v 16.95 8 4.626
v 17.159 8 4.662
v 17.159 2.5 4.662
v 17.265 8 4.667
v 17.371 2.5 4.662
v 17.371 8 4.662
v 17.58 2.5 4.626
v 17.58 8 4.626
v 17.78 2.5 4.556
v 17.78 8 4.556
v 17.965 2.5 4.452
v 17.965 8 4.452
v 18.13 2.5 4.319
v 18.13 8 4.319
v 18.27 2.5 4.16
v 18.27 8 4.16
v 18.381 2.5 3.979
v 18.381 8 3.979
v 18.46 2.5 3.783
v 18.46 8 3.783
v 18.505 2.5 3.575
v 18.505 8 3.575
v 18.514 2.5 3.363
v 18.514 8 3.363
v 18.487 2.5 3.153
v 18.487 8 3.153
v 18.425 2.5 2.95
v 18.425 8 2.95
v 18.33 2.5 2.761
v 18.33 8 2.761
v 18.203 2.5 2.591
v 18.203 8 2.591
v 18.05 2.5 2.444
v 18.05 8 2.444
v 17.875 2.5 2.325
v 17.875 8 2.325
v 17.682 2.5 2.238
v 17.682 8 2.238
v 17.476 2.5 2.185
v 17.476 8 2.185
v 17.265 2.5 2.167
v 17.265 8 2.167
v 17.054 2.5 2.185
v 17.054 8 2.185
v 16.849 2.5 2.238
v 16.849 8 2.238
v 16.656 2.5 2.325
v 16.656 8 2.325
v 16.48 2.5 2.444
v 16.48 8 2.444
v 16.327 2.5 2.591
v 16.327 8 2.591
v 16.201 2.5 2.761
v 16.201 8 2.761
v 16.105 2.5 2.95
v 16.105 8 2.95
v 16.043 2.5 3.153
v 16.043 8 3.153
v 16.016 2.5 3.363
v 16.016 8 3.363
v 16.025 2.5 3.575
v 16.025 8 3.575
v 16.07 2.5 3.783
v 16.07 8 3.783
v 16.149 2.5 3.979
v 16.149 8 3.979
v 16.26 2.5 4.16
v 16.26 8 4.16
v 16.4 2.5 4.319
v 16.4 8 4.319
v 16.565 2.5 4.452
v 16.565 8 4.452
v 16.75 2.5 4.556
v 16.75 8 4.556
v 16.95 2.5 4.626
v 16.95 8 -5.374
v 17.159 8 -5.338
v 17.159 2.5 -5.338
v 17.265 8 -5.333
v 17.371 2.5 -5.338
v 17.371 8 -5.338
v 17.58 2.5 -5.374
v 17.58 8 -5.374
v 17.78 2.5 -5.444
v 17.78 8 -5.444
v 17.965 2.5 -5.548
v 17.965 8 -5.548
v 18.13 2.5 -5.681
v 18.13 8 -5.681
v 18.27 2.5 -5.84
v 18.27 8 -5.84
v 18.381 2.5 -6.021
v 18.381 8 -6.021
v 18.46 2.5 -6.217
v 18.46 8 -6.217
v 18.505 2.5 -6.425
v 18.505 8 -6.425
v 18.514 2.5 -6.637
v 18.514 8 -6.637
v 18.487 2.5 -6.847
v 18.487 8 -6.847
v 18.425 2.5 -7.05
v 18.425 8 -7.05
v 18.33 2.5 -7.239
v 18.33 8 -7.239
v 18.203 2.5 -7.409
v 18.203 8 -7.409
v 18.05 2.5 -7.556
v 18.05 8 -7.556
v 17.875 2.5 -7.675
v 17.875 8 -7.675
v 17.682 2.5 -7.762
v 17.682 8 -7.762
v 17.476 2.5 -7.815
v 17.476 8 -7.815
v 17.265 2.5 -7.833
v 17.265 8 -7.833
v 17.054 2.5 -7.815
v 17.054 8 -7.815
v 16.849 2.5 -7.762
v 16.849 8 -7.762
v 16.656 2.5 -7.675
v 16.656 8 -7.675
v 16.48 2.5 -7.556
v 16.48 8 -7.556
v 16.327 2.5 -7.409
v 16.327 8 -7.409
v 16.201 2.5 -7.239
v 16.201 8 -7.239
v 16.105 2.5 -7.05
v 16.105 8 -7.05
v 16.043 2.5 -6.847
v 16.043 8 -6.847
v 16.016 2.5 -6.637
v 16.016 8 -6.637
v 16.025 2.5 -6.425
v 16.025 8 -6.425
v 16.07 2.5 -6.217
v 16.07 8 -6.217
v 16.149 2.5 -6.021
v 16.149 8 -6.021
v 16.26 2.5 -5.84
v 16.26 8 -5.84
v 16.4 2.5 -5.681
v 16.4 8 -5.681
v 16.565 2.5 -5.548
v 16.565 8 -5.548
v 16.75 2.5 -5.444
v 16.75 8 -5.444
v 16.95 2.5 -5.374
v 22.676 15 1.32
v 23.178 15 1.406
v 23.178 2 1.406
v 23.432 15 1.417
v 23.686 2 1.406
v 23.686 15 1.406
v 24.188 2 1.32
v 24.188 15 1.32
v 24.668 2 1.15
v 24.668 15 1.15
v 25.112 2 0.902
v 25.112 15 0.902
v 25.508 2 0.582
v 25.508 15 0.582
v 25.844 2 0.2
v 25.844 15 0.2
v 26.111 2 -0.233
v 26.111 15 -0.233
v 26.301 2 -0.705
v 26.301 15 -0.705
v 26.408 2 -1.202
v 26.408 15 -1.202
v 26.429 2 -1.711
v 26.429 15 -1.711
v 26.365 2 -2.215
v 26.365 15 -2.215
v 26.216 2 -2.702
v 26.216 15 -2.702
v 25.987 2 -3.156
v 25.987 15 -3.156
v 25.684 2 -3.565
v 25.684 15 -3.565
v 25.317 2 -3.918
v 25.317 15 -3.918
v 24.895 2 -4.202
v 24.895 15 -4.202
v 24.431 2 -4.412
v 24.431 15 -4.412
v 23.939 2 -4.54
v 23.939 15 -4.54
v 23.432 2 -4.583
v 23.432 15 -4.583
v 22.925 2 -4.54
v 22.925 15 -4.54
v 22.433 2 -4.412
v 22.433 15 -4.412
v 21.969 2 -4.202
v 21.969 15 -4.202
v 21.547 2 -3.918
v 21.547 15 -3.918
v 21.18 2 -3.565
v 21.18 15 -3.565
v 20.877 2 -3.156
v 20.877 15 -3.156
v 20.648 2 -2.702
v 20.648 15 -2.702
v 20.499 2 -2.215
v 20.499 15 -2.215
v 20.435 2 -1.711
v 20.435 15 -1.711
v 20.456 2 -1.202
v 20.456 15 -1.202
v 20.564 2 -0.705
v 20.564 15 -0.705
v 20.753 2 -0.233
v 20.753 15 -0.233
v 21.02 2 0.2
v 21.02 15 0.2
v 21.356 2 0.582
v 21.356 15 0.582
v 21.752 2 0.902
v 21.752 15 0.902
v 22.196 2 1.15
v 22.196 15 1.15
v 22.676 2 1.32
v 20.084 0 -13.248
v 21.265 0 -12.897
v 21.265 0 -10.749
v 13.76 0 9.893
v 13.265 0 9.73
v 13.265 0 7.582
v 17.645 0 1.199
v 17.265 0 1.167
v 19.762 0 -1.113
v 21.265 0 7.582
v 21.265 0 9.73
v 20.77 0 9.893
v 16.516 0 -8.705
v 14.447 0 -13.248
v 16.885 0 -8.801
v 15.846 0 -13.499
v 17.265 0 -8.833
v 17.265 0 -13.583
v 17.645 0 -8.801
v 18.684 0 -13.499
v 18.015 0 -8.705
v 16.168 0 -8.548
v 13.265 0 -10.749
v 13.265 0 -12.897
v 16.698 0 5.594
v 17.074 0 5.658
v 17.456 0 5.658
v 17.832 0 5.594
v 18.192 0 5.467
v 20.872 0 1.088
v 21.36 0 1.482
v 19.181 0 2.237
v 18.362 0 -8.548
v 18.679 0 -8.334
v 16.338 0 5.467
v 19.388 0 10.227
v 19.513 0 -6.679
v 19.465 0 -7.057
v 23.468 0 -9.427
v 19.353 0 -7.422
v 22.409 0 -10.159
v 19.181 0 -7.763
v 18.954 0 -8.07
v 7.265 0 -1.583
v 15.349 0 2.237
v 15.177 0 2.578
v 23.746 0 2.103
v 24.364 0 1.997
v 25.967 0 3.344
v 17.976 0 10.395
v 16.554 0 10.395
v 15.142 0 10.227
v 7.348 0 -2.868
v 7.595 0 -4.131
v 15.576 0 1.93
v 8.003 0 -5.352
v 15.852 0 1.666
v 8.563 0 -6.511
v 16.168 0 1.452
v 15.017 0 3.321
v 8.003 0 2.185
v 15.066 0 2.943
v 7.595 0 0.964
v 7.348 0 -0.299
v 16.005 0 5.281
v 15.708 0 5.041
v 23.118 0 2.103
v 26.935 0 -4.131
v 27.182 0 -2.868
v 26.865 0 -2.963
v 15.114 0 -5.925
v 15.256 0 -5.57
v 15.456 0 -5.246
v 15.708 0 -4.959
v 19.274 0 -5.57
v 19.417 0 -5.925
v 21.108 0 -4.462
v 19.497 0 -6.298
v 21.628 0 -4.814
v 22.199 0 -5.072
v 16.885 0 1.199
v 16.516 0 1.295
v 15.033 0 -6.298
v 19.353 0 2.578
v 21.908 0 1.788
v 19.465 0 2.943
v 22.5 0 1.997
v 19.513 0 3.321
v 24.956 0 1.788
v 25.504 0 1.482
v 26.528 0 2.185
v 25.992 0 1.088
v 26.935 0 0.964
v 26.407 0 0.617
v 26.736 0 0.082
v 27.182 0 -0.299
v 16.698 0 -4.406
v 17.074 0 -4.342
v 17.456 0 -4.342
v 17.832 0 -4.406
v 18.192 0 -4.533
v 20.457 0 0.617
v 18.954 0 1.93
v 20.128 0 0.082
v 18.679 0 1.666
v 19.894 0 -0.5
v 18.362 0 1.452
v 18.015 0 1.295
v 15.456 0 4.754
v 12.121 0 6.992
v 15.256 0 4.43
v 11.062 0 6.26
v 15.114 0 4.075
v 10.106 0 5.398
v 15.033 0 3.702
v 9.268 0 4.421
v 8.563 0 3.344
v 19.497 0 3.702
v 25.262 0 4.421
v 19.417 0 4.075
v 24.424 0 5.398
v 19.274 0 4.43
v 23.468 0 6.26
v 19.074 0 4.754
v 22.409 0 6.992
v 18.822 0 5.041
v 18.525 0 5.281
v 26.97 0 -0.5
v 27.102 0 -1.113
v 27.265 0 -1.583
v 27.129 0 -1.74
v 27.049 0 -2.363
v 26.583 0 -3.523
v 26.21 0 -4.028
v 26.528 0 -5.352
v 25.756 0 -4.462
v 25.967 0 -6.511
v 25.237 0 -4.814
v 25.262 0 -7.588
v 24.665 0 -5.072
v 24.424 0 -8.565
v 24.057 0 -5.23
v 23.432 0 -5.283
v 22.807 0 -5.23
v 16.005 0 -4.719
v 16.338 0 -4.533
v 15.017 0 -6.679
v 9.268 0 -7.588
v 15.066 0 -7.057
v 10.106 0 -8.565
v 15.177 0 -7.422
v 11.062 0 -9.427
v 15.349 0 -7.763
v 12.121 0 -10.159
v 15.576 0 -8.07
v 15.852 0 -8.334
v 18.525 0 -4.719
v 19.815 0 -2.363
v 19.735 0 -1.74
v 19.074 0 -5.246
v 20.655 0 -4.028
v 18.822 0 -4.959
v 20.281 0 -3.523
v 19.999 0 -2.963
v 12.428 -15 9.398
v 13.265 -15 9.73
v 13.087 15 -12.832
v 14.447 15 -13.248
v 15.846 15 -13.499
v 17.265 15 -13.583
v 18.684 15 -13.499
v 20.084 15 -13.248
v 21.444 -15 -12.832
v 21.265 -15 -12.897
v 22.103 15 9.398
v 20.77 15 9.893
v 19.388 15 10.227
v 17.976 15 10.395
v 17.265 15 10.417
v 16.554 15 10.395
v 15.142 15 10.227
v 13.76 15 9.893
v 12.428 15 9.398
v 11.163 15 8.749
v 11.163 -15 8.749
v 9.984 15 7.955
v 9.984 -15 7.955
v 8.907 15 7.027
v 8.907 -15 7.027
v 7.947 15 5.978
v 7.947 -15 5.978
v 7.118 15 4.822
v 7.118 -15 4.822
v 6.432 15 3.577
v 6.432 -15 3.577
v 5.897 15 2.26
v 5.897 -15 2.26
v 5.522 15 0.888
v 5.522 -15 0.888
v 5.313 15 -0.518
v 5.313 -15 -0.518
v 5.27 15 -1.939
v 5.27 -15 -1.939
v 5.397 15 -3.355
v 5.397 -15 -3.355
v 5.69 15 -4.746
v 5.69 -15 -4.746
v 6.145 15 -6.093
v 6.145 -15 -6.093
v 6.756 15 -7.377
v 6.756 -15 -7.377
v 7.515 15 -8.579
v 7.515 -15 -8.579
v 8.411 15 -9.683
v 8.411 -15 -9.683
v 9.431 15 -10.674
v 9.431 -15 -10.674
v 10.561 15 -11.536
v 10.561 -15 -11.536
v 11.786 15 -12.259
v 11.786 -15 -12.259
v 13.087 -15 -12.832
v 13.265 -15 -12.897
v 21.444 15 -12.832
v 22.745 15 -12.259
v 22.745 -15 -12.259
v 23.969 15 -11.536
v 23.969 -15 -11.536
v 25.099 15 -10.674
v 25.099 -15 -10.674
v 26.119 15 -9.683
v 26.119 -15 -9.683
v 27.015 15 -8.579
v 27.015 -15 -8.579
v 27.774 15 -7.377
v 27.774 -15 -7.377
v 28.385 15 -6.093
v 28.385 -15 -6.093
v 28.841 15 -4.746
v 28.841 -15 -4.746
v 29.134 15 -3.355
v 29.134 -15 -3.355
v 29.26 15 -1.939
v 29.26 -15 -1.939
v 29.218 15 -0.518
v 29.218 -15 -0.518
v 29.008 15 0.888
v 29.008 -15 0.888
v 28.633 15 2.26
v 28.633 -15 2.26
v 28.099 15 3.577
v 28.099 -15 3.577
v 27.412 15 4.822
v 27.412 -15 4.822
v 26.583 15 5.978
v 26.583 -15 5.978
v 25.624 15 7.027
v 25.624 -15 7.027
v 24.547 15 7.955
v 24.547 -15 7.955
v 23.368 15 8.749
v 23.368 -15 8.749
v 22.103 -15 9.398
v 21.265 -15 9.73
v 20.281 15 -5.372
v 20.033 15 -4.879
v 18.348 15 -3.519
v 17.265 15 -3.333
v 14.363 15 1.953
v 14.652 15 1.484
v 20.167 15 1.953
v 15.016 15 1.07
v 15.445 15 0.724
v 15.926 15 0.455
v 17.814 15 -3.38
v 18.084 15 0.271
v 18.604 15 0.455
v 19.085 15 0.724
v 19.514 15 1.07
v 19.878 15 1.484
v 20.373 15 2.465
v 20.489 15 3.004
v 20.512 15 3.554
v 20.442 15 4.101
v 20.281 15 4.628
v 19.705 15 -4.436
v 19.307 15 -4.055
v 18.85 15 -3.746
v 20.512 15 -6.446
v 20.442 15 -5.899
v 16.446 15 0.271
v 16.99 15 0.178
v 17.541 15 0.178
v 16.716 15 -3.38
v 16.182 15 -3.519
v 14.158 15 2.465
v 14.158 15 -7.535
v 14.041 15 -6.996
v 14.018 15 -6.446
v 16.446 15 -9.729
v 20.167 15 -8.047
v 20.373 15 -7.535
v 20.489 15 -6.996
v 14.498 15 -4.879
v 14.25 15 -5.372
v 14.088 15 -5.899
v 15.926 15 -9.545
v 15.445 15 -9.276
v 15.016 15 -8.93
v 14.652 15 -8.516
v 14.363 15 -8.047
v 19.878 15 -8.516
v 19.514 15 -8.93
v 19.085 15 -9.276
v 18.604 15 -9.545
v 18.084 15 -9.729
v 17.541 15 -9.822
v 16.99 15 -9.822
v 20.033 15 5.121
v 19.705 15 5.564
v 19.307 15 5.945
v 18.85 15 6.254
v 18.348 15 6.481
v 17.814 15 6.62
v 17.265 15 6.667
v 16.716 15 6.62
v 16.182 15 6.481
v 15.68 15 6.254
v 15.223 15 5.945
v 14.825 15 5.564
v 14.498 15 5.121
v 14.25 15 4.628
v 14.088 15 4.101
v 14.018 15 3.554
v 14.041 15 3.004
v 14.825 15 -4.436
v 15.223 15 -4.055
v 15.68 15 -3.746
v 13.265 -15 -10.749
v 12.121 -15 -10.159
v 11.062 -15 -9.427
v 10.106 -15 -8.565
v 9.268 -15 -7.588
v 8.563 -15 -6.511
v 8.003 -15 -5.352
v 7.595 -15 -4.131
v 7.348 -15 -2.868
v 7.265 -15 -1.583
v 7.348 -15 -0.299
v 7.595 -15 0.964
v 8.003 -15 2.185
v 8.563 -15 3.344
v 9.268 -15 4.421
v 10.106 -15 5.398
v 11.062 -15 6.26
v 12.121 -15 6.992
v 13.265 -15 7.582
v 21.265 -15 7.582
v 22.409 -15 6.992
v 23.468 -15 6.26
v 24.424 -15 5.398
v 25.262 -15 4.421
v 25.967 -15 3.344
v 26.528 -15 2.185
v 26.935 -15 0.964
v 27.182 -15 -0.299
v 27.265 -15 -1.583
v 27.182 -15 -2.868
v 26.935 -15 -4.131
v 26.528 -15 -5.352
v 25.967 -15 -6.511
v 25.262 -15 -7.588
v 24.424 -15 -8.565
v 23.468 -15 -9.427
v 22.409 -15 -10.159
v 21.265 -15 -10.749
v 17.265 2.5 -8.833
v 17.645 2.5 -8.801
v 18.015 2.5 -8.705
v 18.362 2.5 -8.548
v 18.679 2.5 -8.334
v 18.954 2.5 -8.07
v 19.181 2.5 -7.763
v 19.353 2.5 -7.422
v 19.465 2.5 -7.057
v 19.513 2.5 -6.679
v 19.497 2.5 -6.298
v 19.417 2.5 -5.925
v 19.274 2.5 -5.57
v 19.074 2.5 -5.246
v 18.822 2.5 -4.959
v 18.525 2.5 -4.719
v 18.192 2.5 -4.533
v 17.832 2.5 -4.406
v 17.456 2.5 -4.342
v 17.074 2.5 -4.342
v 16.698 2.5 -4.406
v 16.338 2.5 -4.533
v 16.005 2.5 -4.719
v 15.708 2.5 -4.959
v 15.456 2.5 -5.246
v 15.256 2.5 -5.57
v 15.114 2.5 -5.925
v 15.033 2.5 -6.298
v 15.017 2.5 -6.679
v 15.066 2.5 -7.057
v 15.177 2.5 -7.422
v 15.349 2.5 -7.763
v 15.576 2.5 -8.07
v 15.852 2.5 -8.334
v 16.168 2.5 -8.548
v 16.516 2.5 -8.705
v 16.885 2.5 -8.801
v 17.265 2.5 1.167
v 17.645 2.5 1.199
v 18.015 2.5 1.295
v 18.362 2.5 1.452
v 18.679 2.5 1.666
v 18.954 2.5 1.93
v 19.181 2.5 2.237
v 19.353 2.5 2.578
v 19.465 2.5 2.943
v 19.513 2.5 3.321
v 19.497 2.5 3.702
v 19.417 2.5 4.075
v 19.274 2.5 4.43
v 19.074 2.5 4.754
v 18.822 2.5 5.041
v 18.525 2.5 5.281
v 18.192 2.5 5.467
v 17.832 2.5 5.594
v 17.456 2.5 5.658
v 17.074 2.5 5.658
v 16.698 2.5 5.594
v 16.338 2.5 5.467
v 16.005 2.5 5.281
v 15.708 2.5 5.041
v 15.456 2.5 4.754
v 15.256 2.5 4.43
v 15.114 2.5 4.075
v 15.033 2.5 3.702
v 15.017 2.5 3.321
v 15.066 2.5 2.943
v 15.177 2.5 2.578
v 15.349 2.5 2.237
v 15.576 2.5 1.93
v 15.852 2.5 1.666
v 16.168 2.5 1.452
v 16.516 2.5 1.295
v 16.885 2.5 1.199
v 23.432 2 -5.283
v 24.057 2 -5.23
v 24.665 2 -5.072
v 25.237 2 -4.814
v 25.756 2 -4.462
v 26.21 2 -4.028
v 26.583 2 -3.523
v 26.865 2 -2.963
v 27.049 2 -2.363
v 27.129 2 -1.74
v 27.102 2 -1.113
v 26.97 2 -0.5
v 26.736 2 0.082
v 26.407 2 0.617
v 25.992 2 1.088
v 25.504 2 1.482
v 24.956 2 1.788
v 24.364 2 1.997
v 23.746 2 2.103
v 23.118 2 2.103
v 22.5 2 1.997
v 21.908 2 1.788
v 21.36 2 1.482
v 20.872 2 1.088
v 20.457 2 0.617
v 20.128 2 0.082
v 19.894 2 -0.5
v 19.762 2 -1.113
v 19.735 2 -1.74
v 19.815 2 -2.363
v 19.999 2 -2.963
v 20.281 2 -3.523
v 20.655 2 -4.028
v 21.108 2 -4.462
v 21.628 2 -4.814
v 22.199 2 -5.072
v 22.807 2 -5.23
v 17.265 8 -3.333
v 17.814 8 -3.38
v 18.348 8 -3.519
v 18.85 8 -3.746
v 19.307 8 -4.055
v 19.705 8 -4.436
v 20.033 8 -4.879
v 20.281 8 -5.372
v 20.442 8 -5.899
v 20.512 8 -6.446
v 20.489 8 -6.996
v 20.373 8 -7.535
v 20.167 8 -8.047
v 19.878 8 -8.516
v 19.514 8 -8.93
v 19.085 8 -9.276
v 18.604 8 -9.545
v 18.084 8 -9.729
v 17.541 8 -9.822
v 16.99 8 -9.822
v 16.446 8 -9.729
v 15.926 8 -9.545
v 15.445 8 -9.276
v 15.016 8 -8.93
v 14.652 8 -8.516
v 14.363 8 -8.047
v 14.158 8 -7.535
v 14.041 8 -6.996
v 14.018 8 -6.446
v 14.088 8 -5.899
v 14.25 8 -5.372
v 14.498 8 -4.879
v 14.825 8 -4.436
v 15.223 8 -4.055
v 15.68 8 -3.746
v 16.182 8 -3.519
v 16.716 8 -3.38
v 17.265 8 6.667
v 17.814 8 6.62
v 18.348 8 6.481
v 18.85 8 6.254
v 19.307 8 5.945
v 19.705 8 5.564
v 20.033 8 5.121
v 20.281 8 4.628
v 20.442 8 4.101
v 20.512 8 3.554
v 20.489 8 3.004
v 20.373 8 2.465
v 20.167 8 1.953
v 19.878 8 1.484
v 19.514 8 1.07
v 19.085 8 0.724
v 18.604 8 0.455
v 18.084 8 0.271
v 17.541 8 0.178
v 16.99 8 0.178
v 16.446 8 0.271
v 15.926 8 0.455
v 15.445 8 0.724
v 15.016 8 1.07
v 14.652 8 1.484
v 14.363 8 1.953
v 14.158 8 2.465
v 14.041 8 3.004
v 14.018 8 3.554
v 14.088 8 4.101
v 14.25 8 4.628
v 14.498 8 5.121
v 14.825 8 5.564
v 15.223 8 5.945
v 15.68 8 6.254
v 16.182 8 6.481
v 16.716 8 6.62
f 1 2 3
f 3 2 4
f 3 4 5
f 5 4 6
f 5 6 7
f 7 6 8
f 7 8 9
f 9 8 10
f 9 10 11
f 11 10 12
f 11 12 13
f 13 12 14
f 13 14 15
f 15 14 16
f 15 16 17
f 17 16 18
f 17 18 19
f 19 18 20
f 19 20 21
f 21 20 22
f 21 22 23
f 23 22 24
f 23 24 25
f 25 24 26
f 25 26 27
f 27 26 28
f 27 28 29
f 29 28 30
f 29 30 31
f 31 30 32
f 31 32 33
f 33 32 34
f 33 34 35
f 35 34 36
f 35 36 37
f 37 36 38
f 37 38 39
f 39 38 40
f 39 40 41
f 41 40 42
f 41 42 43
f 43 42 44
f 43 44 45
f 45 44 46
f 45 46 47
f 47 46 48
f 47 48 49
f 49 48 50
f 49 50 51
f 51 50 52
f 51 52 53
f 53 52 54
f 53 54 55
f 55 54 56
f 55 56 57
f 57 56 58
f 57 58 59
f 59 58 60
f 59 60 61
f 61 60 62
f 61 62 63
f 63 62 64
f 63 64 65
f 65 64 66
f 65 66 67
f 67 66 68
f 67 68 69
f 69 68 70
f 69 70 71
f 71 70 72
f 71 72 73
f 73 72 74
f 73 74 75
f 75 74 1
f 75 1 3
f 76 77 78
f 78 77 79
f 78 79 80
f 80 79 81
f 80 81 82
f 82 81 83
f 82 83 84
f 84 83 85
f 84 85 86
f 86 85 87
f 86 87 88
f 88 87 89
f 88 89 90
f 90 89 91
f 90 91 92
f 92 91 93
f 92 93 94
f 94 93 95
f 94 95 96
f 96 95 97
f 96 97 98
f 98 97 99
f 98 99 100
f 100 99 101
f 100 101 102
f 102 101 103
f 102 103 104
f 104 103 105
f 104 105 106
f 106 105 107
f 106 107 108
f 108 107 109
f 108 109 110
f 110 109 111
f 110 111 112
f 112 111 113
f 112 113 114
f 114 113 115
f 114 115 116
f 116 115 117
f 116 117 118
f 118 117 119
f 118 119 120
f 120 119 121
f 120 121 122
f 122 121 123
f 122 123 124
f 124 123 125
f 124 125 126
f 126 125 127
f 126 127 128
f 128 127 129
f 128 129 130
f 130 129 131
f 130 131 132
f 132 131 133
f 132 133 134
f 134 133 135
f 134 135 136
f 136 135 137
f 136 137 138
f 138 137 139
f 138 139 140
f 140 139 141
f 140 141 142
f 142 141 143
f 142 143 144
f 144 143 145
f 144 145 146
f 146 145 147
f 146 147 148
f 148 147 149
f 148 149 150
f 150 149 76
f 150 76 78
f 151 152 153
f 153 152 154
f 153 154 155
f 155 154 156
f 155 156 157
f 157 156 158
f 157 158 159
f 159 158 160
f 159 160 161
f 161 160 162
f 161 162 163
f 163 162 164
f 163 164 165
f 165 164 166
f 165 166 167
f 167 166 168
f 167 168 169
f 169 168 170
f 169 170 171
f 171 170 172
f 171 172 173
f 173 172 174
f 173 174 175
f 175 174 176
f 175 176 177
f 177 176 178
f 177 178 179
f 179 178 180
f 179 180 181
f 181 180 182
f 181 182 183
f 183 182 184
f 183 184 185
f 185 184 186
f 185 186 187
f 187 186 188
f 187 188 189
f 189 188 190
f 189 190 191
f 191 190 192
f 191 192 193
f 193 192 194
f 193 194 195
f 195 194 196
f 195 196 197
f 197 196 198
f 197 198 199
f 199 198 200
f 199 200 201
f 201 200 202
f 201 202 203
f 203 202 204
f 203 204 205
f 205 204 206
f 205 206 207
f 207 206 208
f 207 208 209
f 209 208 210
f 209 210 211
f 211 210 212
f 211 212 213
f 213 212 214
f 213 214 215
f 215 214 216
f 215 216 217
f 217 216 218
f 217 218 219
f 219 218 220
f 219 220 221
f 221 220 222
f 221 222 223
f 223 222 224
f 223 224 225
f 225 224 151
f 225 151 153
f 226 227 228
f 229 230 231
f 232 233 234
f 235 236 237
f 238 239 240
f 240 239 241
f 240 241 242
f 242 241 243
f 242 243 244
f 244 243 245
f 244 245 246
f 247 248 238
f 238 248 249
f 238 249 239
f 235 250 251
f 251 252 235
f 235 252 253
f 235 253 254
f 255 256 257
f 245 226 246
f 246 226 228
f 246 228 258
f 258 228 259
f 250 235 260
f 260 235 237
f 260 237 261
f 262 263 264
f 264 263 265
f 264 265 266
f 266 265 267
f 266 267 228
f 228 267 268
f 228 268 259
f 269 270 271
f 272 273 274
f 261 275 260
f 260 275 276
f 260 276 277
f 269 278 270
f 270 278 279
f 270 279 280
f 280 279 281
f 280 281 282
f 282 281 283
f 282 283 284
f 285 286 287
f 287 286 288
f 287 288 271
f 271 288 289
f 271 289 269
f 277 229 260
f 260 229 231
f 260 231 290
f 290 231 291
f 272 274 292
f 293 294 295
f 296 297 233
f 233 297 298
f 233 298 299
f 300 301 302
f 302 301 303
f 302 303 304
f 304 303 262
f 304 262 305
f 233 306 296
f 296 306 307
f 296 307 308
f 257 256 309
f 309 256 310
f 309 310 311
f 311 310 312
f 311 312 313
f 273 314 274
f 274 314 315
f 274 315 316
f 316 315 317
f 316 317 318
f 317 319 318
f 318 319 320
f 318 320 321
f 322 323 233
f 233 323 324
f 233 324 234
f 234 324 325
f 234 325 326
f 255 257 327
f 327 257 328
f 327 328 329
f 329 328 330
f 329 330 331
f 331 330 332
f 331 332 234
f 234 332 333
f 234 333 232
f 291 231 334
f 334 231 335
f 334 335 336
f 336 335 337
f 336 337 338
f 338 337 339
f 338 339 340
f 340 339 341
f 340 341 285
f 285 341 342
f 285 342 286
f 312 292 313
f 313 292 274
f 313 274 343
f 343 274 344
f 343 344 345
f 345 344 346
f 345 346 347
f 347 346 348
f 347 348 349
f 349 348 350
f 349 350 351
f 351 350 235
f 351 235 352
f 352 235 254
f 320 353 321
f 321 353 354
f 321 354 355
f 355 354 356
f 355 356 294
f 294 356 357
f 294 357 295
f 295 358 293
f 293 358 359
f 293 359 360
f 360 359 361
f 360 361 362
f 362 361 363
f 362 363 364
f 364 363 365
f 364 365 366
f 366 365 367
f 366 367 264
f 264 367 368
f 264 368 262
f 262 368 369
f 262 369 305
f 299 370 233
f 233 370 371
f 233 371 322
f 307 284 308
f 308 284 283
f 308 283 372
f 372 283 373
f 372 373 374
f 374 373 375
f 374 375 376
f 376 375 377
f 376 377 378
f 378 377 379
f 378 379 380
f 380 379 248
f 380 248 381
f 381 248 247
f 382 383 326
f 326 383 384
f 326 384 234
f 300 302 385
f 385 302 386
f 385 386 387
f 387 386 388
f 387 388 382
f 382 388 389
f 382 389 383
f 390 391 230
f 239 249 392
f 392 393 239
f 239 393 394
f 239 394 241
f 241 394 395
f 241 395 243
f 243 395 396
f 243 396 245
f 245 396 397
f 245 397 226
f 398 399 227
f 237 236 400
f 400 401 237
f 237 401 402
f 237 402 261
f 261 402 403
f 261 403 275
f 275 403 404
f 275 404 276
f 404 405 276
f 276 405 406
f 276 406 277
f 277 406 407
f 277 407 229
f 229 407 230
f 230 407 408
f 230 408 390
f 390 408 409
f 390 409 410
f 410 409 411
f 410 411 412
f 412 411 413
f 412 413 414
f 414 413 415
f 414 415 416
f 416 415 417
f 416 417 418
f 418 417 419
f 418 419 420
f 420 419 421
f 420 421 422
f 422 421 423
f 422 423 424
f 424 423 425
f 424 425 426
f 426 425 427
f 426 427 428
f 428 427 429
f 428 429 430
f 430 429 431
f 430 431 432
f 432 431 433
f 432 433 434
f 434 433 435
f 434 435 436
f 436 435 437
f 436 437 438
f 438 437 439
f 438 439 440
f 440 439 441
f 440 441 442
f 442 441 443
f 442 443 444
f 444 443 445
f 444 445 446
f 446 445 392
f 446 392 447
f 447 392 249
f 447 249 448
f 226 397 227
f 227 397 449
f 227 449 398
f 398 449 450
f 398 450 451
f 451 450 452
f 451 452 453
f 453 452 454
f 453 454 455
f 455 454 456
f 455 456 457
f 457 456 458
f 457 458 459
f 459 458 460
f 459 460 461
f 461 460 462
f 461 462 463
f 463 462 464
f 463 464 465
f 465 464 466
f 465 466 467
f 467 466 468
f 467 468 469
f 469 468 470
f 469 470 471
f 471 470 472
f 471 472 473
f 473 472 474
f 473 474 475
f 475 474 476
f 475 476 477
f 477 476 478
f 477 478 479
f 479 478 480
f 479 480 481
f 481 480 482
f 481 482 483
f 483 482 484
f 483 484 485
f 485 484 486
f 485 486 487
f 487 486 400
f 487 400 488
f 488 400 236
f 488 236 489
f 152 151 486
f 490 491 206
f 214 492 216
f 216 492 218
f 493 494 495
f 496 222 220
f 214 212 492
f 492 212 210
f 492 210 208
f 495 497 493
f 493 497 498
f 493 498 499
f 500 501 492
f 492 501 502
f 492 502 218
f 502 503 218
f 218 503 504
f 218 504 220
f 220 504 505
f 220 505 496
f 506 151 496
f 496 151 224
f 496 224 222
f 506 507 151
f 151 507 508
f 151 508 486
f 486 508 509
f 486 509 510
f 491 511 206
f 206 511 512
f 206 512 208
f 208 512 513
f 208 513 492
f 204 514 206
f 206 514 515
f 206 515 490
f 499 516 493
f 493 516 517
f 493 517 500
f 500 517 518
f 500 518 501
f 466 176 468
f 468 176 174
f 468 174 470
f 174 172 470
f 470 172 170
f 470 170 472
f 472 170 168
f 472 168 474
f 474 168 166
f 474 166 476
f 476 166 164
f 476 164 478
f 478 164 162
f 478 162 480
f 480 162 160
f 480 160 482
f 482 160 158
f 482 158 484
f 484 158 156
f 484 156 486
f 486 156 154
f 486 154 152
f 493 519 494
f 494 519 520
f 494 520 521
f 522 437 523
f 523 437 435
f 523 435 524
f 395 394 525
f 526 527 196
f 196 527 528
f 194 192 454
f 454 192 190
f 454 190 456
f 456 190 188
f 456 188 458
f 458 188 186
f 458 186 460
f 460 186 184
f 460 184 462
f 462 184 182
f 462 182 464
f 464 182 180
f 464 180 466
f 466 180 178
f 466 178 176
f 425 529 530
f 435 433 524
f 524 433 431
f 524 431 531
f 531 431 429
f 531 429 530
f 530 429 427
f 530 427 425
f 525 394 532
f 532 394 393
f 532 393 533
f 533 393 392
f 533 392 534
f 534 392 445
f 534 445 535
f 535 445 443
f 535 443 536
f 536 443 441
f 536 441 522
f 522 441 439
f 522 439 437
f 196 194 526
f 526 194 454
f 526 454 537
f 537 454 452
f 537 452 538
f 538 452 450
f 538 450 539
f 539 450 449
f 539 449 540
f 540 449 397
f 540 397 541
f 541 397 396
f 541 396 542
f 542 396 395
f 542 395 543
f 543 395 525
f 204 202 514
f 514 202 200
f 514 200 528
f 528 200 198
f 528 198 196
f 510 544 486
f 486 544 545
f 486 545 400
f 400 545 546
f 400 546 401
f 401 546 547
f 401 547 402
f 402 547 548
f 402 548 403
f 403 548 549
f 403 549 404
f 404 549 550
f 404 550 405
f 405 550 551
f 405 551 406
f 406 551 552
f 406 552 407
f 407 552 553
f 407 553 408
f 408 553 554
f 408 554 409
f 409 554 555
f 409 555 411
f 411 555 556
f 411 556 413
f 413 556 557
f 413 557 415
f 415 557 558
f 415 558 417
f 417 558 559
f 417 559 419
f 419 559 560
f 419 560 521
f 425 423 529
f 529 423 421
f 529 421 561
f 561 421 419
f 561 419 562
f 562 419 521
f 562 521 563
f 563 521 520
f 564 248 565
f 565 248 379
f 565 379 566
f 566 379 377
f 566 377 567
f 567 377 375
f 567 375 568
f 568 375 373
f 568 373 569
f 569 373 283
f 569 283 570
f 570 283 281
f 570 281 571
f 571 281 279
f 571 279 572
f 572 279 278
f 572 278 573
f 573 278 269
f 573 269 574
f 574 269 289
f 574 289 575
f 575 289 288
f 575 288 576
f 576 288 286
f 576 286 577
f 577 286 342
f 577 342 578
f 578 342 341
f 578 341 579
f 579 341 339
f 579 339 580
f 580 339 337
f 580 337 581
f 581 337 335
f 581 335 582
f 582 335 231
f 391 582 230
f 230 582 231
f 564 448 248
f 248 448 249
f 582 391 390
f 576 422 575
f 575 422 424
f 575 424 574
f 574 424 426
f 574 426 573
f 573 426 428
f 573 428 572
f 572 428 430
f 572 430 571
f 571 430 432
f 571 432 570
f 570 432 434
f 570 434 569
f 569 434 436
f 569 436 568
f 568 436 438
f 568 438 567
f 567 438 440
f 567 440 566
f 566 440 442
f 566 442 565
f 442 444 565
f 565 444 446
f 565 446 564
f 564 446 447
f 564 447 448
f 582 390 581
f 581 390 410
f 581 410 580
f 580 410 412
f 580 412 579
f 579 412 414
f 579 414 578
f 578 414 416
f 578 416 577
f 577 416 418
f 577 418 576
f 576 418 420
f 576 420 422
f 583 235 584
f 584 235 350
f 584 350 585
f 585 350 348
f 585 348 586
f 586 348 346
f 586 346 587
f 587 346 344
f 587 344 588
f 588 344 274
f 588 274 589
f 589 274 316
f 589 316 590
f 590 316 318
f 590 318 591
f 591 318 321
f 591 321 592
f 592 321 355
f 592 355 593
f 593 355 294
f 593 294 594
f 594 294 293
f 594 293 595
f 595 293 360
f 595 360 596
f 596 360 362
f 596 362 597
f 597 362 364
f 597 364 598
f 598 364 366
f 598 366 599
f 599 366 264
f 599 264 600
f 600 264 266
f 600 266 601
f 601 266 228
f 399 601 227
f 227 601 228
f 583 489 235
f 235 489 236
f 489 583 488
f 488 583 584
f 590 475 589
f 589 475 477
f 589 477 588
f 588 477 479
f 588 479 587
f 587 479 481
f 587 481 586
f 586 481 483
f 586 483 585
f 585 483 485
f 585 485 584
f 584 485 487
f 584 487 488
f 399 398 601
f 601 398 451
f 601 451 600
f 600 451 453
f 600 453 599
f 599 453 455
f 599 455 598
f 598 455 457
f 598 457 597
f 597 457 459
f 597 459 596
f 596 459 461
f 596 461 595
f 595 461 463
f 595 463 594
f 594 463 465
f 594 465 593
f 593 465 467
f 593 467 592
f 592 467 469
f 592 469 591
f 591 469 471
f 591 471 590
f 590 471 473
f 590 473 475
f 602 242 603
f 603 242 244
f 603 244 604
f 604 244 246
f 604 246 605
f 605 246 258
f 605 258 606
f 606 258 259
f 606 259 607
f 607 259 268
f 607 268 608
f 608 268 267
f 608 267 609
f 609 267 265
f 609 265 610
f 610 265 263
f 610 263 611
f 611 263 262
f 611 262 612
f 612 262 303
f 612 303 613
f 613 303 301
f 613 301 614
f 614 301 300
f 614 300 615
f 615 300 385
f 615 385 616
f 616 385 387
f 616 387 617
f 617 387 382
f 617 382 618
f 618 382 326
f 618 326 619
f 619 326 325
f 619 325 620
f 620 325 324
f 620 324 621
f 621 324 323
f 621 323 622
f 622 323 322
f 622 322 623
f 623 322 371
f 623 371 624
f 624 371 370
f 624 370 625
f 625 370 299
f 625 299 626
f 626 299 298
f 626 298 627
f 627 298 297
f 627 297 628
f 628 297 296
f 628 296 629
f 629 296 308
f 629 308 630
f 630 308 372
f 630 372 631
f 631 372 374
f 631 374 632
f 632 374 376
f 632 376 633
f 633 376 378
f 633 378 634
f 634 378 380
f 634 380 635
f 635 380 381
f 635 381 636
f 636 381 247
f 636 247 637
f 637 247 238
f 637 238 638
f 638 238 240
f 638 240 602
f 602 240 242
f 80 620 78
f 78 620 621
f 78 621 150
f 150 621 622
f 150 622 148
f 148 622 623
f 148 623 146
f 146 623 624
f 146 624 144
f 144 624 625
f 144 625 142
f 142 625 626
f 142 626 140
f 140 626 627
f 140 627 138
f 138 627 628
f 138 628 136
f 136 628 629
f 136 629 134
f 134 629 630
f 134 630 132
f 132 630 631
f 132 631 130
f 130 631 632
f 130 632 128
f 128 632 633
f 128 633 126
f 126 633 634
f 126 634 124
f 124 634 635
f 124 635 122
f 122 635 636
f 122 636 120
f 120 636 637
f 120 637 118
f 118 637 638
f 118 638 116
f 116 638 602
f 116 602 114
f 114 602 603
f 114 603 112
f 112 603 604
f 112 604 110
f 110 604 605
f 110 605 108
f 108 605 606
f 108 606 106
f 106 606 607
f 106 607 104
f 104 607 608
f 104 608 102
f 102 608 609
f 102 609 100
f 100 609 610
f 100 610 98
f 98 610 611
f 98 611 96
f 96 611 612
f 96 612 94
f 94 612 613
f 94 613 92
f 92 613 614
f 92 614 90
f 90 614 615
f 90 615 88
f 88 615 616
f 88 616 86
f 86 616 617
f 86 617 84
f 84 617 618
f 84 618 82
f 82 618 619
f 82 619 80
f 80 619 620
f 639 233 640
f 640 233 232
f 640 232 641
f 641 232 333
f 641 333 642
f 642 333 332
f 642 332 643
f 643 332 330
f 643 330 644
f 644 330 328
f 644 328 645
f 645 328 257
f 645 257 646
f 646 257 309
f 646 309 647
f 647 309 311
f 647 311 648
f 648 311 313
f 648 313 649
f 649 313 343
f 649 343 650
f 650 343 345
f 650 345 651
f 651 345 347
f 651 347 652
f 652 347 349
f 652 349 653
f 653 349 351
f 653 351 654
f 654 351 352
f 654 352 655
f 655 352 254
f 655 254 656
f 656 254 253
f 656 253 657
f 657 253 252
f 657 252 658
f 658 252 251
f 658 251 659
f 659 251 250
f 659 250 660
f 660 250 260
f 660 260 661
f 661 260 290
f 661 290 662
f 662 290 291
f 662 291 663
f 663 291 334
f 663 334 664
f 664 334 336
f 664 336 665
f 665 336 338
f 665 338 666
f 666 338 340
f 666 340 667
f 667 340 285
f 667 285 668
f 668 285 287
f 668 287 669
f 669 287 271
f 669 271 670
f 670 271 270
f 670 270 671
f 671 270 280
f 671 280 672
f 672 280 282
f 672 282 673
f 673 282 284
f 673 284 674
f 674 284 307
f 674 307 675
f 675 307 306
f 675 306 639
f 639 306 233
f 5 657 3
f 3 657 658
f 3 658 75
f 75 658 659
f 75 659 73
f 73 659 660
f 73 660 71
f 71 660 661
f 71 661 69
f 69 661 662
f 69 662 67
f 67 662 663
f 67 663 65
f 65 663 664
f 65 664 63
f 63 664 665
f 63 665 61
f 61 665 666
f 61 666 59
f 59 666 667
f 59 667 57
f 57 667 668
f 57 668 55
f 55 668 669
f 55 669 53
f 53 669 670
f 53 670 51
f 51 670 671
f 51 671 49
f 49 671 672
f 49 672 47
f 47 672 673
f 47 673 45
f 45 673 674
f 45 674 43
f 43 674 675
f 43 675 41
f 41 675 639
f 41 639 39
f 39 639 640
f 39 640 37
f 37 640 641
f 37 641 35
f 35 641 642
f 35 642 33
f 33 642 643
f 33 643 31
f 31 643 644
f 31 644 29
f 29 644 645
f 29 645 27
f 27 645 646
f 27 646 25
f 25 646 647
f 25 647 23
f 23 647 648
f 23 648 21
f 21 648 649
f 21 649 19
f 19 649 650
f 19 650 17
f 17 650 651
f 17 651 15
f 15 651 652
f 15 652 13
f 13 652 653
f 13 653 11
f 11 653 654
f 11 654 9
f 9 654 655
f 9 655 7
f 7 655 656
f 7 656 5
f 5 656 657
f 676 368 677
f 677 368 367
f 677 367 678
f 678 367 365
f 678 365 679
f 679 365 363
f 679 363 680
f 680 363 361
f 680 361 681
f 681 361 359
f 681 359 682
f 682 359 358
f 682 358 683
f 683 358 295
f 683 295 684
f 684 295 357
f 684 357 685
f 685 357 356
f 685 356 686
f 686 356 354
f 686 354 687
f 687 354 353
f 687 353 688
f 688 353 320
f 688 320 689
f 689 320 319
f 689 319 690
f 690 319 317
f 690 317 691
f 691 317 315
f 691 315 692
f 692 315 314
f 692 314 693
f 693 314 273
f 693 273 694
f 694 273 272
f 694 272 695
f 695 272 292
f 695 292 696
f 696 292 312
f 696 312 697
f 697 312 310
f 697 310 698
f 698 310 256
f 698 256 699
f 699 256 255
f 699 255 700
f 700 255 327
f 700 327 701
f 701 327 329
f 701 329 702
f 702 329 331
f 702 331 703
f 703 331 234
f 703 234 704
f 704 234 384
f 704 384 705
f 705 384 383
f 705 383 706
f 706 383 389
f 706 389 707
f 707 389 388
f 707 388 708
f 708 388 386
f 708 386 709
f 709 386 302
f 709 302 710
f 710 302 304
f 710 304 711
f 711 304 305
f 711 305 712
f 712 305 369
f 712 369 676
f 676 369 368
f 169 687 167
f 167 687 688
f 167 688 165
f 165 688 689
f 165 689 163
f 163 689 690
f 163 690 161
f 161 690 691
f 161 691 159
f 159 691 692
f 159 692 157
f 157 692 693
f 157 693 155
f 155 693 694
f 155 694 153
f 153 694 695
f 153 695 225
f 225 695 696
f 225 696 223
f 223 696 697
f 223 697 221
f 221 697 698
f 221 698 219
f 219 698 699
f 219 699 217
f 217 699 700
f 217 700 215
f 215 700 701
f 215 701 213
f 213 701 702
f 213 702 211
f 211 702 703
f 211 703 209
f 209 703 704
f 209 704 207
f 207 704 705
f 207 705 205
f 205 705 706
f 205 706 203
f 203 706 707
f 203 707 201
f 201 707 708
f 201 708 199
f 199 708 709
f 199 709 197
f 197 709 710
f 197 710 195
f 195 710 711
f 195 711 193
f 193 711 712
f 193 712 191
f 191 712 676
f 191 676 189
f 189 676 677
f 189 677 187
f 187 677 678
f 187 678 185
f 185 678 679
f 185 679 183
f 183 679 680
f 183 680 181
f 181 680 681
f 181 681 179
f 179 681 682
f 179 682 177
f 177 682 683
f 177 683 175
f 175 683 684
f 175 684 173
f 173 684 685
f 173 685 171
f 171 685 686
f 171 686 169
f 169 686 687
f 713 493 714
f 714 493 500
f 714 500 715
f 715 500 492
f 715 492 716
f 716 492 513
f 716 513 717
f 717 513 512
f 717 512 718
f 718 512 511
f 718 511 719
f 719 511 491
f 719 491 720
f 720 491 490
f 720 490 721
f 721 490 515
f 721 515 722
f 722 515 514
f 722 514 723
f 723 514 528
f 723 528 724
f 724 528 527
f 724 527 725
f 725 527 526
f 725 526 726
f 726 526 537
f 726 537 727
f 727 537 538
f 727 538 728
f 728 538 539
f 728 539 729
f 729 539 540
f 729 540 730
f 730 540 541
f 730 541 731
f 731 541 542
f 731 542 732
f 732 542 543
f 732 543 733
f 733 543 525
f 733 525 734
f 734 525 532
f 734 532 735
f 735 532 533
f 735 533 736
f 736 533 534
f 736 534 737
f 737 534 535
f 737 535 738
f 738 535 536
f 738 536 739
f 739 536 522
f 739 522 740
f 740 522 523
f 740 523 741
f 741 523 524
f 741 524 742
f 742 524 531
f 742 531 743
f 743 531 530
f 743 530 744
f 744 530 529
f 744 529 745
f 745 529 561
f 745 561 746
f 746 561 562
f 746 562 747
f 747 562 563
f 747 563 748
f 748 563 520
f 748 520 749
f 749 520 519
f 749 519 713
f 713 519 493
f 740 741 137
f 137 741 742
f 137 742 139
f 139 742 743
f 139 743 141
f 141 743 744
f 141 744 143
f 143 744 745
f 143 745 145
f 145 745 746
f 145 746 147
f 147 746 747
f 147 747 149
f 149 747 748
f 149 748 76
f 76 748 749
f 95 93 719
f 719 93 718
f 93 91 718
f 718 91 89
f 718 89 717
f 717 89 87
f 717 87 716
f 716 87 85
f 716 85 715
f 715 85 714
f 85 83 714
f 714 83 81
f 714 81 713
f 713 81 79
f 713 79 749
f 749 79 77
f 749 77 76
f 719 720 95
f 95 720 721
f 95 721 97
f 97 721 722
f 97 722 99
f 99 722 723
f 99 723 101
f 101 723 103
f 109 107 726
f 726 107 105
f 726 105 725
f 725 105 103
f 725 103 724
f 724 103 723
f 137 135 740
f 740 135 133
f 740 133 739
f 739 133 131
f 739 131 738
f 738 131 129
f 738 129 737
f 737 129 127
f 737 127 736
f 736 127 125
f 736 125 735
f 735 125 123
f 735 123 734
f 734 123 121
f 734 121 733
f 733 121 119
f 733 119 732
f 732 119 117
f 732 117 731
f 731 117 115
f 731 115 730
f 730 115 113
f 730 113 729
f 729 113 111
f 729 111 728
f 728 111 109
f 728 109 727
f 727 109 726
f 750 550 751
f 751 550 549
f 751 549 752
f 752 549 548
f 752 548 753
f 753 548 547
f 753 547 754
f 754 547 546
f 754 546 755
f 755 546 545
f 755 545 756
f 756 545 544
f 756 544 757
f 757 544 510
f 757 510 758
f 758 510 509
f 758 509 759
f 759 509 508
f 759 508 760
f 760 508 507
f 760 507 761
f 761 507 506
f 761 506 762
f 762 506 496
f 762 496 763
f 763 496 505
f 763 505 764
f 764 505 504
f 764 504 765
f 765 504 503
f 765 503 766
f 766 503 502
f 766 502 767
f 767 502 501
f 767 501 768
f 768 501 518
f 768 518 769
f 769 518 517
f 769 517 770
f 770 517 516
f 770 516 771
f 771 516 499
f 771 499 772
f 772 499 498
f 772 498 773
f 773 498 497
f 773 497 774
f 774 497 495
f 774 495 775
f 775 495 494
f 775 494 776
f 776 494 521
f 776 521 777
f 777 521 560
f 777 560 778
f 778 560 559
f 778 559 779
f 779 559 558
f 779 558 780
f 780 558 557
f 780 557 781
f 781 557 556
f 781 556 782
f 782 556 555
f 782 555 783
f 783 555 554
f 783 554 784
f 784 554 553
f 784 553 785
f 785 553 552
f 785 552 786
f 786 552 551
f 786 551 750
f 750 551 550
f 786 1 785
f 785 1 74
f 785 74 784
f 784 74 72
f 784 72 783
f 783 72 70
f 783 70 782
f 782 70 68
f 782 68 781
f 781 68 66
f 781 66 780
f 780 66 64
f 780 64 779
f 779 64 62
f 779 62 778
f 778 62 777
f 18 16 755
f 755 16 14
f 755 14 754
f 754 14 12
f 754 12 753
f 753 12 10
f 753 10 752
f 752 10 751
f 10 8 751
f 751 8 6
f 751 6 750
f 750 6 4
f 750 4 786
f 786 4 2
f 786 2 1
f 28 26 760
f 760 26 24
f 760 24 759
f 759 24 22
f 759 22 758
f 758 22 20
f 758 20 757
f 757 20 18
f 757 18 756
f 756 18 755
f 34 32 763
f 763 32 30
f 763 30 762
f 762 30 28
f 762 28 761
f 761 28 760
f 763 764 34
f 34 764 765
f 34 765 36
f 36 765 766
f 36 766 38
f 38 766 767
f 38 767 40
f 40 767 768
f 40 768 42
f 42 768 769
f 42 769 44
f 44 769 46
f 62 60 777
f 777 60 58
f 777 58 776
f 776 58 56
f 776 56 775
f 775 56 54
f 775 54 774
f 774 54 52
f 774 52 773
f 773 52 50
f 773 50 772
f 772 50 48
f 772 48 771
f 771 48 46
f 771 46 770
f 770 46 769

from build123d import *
from build123d.topology import SkipClean

# Parameters (mm, degrees)
SKETCH1_R           = 1.25
BOSS_EXTRUDE1_DEPTH = 15
BOSS_EXTRUDE2_START = 15
BOSS_EXTRUDE2_DEPTH = 15
SKETCH4_R           = 2.25
CUT_EXTRUDE2_DEPTH  = 2.5
SKETCH5_R           = 2.25
CUT_EXTRUDE3_DEPTH  = 2.5
SKETCH6_R           = 3.7
CUT_EXTRUDE4_DEPTH  = 2
SKETCH12_R          = 3.25
CUT_EXTRUDE5_DEPTH  = 7
SKETCH13_R          = 3.25
CUT_EXTRUDE6_DEPTH  = 7


with BuildPart() as part:
    # Sketch1 → Boss-Extrude1 (new body)
    # profile 1 of 3: a face of its own
    with BuildSketch(Plane(origin=(0, 0, 0), x_dir=(1, 0, 0), z_dir=(0, 1, 0))):
        with BuildLine():
            Line((13.265157172, 12.897160092), (13.265157172, 10.748602983))
            ThreePointArc((13.265157172, 10.748602983), (7.265157172, 1.583451593), (13.265157172, -7.581699797))
            Line((13.265157172, -7.581699797), (13.265157172, -9.730256906))
            ThreePointArc((13.265157172, -9.730256906), (17.265157172, -10.416548407), (21.265157172, -9.730256906))
            Line((21.265157172, -9.730256906), (21.265157172, -7.581699797))
            ThreePointArc((21.265157172, -7.581699797), (27.265157172, 1.583451593), (21.265157172, 10.748602983))
            Line((21.265157172, 10.748602983), (21.265157172, 12.897160092))
            ThreePointArc((21.265157172, 12.897160092), (17.265157172, 13.583451593), (13.265157172, 12.897160092))
        make_face()
        with Locations(Location((17.265157172, -3.416548407, 0), (0, 0, 270))):
            Circle(SKETCH1_R, mode=Mode.SUBTRACT)
        with Locations(Location((17.265157172, 6.583451593, 0), (0, 0, 270))):
            Circle(SKETCH1_R, mode=Mode.SUBTRACT)
        with BuildLine():
            ThreePointArc((26.432063002, 1.583451593), (24.549936544, -1.20049502), (21.265157172, -0.491281913))
            ThreePointArc((21.265157172, -0.491281913), (20.432063002, 1.583451593), (21.265157172, 3.6581851))
            ThreePointArc((21.265157172, 3.6581851), (24.549936544, 4.367398207), (26.432063002, 1.583451593))
        make_face(mode=Mode.SUBTRACT)
    # profile 2 of 3: a face of its own
    with BuildSketch(Plane(origin=(0, 0, 0), x_dir=(1, 0, 0), z_dir=(0, 1, 0))):
        with BuildLine():
            ThreePointArc((13.265157172, -7.581699797), (7.265157172, 1.583451593), (13.265157172, 10.748602983))
            Line((13.265157172, 10.748602983), (13.265157172, 12.897160092))
            ThreePointArc((13.265157172, 12.897160092), (5.265157172, 1.583451593), (13.265157172, -9.730256906))
            Line((13.265157172, -9.730256906), (13.265157172, -7.581699797))
        make_face()
    # profile 3 of 3: a face of its own
    with BuildSketch(Plane(origin=(0, 0, 0), x_dir=(1, 0, 0), z_dir=(0, 1, 0))):
        with BuildLine():
            ThreePointArc((29.265157172, 1.583451593), (27.063116143, 8.511654824), (21.265157172, 12.897160092))
            Line((21.265157172, 12.897160092), (21.265157172, 10.748602983))
            ThreePointArc((21.265157172, 10.748602983), (27.265157172, 1.583451593), (21.265157172, -7.581699797))
            Line((21.265157172, -7.581699797), (21.265157172, -9.730256906))
            ThreePointArc((21.265157172, -9.730256906), (27.063116143, -5.344751637), (29.265157172, 1.583451593))
        make_face()
    extrude(amount=BOSS_EXTRUDE1_DEPTH)

    # Sketch3 → Boss-Extrude2 (add)
    with SkipClean():  # the faces are left unmerged after this step: merging them gives an invalid solid
        with BuildSketch(Plane.XZ.offset(BOSS_EXTRUDE2_START)):
            with BuildLine():
                Line((13.265157172, -12.897160092), (13.265157172, -10.748602983))
                ThreePointArc((13.265157172, -10.748602983), (7.265157172, -1.583451593), (13.265157172, 7.581699797))
                Line((13.265157172, 7.581699797), (13.265157172, 9.730256906))
                ThreePointArc((13.265157172, 9.730256906), (5.265157172, -1.583451593), (13.265157172, -12.897160092))
            make_face()
            with BuildLine():
                Line((21.265157172, -10.748602983), (21.265157172, -12.897160092))
                ThreePointArc((21.265157172, -12.897160092), (27.063116143, -8.511654824), (29.265157172, -1.583451593))
                ThreePointArc((29.265157172, -1.583451593), (27.063116143, 5.344751637), (21.265157172, 9.730256906))
                Line((21.265157172, 9.730256906), (21.265157172, 7.581699797))
                ThreePointArc((21.265157172, 7.581699797), (27.265157172, -1.583451593), (21.265157172, -10.748602983))
            make_face()
        extrude(amount=-BOSS_EXTRUDE2_DEPTH)

    # Sketch4 → Cut-Extrude2 (cut)
    with SkipClean():  # the faces are left unmerged after this step: merging them gives an invalid solid
        with BuildSketch(Plane.XZ):
            with Locations(Location((17.265157172, -6.583451593, 0), (0, 0, 270))):
                Circle(SKETCH4_R)
        extrude(amount=-CUT_EXTRUDE2_DEPTH, mode=Mode.SUBTRACT)

    # Sketch5 → Cut-Extrude3 (cut)
    with SkipClean():  # the faces are left unmerged after this step: merging them gives an invalid solid
        with BuildSketch(Plane.XZ):
            with Locations(Location((17.265157172, 3.416548407, 0), (0, 0, 270))):
                Circle(SKETCH5_R)
        extrude(amount=-CUT_EXTRUDE3_DEPTH, mode=Mode.SUBTRACT)

    # Sketch6 → Cut-Extrude4 (cut)
    with SkipClean():  # the faces are left unmerged after this step: merging them gives an invalid solid
        with BuildSketch(Plane.XZ):
            with Locations(Location((23.432063002, -1.583451593, 0), (0, 0, 270))):
                Circle(SKETCH6_R)
        extrude(amount=-CUT_EXTRUDE4_DEPTH, mode=Mode.SUBTRACT)

    # Sketch12 → Cut-Extrude5 (cut)
    with SkipClean():  # the faces are left unmerged after this step: merging them gives an invalid solid
        with BuildSketch(Plane(origin=(0, 15, 0), x_dir=(1, 0, 0), z_dir=(0, 1, 0))):
            with Locations(Location((17.265157172, 6.583451593, 0), (0, 0, 270))):
                Circle(SKETCH12_R)
        extrude(amount=-CUT_EXTRUDE5_DEPTH, mode=Mode.SUBTRACT)

    # Sketch13 → Cut-Extrude6 (cut)
    with SkipClean():  # the faces are left unmerged after this step: merging them gives an invalid solid
        with BuildSketch(Plane(origin=(0, 15, 0), x_dir=(1, 0, 0), z_dir=(0, 1, 0))):
            with Locations(Location((17.265157172, -3.416548407, 0), (0, 0, 270))):
                Circle(SKETCH13_R)
        extrude(amount=-CUT_EXTRUDE6_DEPTH, mode=Mode.SUBTRACT)


solid = part.part
